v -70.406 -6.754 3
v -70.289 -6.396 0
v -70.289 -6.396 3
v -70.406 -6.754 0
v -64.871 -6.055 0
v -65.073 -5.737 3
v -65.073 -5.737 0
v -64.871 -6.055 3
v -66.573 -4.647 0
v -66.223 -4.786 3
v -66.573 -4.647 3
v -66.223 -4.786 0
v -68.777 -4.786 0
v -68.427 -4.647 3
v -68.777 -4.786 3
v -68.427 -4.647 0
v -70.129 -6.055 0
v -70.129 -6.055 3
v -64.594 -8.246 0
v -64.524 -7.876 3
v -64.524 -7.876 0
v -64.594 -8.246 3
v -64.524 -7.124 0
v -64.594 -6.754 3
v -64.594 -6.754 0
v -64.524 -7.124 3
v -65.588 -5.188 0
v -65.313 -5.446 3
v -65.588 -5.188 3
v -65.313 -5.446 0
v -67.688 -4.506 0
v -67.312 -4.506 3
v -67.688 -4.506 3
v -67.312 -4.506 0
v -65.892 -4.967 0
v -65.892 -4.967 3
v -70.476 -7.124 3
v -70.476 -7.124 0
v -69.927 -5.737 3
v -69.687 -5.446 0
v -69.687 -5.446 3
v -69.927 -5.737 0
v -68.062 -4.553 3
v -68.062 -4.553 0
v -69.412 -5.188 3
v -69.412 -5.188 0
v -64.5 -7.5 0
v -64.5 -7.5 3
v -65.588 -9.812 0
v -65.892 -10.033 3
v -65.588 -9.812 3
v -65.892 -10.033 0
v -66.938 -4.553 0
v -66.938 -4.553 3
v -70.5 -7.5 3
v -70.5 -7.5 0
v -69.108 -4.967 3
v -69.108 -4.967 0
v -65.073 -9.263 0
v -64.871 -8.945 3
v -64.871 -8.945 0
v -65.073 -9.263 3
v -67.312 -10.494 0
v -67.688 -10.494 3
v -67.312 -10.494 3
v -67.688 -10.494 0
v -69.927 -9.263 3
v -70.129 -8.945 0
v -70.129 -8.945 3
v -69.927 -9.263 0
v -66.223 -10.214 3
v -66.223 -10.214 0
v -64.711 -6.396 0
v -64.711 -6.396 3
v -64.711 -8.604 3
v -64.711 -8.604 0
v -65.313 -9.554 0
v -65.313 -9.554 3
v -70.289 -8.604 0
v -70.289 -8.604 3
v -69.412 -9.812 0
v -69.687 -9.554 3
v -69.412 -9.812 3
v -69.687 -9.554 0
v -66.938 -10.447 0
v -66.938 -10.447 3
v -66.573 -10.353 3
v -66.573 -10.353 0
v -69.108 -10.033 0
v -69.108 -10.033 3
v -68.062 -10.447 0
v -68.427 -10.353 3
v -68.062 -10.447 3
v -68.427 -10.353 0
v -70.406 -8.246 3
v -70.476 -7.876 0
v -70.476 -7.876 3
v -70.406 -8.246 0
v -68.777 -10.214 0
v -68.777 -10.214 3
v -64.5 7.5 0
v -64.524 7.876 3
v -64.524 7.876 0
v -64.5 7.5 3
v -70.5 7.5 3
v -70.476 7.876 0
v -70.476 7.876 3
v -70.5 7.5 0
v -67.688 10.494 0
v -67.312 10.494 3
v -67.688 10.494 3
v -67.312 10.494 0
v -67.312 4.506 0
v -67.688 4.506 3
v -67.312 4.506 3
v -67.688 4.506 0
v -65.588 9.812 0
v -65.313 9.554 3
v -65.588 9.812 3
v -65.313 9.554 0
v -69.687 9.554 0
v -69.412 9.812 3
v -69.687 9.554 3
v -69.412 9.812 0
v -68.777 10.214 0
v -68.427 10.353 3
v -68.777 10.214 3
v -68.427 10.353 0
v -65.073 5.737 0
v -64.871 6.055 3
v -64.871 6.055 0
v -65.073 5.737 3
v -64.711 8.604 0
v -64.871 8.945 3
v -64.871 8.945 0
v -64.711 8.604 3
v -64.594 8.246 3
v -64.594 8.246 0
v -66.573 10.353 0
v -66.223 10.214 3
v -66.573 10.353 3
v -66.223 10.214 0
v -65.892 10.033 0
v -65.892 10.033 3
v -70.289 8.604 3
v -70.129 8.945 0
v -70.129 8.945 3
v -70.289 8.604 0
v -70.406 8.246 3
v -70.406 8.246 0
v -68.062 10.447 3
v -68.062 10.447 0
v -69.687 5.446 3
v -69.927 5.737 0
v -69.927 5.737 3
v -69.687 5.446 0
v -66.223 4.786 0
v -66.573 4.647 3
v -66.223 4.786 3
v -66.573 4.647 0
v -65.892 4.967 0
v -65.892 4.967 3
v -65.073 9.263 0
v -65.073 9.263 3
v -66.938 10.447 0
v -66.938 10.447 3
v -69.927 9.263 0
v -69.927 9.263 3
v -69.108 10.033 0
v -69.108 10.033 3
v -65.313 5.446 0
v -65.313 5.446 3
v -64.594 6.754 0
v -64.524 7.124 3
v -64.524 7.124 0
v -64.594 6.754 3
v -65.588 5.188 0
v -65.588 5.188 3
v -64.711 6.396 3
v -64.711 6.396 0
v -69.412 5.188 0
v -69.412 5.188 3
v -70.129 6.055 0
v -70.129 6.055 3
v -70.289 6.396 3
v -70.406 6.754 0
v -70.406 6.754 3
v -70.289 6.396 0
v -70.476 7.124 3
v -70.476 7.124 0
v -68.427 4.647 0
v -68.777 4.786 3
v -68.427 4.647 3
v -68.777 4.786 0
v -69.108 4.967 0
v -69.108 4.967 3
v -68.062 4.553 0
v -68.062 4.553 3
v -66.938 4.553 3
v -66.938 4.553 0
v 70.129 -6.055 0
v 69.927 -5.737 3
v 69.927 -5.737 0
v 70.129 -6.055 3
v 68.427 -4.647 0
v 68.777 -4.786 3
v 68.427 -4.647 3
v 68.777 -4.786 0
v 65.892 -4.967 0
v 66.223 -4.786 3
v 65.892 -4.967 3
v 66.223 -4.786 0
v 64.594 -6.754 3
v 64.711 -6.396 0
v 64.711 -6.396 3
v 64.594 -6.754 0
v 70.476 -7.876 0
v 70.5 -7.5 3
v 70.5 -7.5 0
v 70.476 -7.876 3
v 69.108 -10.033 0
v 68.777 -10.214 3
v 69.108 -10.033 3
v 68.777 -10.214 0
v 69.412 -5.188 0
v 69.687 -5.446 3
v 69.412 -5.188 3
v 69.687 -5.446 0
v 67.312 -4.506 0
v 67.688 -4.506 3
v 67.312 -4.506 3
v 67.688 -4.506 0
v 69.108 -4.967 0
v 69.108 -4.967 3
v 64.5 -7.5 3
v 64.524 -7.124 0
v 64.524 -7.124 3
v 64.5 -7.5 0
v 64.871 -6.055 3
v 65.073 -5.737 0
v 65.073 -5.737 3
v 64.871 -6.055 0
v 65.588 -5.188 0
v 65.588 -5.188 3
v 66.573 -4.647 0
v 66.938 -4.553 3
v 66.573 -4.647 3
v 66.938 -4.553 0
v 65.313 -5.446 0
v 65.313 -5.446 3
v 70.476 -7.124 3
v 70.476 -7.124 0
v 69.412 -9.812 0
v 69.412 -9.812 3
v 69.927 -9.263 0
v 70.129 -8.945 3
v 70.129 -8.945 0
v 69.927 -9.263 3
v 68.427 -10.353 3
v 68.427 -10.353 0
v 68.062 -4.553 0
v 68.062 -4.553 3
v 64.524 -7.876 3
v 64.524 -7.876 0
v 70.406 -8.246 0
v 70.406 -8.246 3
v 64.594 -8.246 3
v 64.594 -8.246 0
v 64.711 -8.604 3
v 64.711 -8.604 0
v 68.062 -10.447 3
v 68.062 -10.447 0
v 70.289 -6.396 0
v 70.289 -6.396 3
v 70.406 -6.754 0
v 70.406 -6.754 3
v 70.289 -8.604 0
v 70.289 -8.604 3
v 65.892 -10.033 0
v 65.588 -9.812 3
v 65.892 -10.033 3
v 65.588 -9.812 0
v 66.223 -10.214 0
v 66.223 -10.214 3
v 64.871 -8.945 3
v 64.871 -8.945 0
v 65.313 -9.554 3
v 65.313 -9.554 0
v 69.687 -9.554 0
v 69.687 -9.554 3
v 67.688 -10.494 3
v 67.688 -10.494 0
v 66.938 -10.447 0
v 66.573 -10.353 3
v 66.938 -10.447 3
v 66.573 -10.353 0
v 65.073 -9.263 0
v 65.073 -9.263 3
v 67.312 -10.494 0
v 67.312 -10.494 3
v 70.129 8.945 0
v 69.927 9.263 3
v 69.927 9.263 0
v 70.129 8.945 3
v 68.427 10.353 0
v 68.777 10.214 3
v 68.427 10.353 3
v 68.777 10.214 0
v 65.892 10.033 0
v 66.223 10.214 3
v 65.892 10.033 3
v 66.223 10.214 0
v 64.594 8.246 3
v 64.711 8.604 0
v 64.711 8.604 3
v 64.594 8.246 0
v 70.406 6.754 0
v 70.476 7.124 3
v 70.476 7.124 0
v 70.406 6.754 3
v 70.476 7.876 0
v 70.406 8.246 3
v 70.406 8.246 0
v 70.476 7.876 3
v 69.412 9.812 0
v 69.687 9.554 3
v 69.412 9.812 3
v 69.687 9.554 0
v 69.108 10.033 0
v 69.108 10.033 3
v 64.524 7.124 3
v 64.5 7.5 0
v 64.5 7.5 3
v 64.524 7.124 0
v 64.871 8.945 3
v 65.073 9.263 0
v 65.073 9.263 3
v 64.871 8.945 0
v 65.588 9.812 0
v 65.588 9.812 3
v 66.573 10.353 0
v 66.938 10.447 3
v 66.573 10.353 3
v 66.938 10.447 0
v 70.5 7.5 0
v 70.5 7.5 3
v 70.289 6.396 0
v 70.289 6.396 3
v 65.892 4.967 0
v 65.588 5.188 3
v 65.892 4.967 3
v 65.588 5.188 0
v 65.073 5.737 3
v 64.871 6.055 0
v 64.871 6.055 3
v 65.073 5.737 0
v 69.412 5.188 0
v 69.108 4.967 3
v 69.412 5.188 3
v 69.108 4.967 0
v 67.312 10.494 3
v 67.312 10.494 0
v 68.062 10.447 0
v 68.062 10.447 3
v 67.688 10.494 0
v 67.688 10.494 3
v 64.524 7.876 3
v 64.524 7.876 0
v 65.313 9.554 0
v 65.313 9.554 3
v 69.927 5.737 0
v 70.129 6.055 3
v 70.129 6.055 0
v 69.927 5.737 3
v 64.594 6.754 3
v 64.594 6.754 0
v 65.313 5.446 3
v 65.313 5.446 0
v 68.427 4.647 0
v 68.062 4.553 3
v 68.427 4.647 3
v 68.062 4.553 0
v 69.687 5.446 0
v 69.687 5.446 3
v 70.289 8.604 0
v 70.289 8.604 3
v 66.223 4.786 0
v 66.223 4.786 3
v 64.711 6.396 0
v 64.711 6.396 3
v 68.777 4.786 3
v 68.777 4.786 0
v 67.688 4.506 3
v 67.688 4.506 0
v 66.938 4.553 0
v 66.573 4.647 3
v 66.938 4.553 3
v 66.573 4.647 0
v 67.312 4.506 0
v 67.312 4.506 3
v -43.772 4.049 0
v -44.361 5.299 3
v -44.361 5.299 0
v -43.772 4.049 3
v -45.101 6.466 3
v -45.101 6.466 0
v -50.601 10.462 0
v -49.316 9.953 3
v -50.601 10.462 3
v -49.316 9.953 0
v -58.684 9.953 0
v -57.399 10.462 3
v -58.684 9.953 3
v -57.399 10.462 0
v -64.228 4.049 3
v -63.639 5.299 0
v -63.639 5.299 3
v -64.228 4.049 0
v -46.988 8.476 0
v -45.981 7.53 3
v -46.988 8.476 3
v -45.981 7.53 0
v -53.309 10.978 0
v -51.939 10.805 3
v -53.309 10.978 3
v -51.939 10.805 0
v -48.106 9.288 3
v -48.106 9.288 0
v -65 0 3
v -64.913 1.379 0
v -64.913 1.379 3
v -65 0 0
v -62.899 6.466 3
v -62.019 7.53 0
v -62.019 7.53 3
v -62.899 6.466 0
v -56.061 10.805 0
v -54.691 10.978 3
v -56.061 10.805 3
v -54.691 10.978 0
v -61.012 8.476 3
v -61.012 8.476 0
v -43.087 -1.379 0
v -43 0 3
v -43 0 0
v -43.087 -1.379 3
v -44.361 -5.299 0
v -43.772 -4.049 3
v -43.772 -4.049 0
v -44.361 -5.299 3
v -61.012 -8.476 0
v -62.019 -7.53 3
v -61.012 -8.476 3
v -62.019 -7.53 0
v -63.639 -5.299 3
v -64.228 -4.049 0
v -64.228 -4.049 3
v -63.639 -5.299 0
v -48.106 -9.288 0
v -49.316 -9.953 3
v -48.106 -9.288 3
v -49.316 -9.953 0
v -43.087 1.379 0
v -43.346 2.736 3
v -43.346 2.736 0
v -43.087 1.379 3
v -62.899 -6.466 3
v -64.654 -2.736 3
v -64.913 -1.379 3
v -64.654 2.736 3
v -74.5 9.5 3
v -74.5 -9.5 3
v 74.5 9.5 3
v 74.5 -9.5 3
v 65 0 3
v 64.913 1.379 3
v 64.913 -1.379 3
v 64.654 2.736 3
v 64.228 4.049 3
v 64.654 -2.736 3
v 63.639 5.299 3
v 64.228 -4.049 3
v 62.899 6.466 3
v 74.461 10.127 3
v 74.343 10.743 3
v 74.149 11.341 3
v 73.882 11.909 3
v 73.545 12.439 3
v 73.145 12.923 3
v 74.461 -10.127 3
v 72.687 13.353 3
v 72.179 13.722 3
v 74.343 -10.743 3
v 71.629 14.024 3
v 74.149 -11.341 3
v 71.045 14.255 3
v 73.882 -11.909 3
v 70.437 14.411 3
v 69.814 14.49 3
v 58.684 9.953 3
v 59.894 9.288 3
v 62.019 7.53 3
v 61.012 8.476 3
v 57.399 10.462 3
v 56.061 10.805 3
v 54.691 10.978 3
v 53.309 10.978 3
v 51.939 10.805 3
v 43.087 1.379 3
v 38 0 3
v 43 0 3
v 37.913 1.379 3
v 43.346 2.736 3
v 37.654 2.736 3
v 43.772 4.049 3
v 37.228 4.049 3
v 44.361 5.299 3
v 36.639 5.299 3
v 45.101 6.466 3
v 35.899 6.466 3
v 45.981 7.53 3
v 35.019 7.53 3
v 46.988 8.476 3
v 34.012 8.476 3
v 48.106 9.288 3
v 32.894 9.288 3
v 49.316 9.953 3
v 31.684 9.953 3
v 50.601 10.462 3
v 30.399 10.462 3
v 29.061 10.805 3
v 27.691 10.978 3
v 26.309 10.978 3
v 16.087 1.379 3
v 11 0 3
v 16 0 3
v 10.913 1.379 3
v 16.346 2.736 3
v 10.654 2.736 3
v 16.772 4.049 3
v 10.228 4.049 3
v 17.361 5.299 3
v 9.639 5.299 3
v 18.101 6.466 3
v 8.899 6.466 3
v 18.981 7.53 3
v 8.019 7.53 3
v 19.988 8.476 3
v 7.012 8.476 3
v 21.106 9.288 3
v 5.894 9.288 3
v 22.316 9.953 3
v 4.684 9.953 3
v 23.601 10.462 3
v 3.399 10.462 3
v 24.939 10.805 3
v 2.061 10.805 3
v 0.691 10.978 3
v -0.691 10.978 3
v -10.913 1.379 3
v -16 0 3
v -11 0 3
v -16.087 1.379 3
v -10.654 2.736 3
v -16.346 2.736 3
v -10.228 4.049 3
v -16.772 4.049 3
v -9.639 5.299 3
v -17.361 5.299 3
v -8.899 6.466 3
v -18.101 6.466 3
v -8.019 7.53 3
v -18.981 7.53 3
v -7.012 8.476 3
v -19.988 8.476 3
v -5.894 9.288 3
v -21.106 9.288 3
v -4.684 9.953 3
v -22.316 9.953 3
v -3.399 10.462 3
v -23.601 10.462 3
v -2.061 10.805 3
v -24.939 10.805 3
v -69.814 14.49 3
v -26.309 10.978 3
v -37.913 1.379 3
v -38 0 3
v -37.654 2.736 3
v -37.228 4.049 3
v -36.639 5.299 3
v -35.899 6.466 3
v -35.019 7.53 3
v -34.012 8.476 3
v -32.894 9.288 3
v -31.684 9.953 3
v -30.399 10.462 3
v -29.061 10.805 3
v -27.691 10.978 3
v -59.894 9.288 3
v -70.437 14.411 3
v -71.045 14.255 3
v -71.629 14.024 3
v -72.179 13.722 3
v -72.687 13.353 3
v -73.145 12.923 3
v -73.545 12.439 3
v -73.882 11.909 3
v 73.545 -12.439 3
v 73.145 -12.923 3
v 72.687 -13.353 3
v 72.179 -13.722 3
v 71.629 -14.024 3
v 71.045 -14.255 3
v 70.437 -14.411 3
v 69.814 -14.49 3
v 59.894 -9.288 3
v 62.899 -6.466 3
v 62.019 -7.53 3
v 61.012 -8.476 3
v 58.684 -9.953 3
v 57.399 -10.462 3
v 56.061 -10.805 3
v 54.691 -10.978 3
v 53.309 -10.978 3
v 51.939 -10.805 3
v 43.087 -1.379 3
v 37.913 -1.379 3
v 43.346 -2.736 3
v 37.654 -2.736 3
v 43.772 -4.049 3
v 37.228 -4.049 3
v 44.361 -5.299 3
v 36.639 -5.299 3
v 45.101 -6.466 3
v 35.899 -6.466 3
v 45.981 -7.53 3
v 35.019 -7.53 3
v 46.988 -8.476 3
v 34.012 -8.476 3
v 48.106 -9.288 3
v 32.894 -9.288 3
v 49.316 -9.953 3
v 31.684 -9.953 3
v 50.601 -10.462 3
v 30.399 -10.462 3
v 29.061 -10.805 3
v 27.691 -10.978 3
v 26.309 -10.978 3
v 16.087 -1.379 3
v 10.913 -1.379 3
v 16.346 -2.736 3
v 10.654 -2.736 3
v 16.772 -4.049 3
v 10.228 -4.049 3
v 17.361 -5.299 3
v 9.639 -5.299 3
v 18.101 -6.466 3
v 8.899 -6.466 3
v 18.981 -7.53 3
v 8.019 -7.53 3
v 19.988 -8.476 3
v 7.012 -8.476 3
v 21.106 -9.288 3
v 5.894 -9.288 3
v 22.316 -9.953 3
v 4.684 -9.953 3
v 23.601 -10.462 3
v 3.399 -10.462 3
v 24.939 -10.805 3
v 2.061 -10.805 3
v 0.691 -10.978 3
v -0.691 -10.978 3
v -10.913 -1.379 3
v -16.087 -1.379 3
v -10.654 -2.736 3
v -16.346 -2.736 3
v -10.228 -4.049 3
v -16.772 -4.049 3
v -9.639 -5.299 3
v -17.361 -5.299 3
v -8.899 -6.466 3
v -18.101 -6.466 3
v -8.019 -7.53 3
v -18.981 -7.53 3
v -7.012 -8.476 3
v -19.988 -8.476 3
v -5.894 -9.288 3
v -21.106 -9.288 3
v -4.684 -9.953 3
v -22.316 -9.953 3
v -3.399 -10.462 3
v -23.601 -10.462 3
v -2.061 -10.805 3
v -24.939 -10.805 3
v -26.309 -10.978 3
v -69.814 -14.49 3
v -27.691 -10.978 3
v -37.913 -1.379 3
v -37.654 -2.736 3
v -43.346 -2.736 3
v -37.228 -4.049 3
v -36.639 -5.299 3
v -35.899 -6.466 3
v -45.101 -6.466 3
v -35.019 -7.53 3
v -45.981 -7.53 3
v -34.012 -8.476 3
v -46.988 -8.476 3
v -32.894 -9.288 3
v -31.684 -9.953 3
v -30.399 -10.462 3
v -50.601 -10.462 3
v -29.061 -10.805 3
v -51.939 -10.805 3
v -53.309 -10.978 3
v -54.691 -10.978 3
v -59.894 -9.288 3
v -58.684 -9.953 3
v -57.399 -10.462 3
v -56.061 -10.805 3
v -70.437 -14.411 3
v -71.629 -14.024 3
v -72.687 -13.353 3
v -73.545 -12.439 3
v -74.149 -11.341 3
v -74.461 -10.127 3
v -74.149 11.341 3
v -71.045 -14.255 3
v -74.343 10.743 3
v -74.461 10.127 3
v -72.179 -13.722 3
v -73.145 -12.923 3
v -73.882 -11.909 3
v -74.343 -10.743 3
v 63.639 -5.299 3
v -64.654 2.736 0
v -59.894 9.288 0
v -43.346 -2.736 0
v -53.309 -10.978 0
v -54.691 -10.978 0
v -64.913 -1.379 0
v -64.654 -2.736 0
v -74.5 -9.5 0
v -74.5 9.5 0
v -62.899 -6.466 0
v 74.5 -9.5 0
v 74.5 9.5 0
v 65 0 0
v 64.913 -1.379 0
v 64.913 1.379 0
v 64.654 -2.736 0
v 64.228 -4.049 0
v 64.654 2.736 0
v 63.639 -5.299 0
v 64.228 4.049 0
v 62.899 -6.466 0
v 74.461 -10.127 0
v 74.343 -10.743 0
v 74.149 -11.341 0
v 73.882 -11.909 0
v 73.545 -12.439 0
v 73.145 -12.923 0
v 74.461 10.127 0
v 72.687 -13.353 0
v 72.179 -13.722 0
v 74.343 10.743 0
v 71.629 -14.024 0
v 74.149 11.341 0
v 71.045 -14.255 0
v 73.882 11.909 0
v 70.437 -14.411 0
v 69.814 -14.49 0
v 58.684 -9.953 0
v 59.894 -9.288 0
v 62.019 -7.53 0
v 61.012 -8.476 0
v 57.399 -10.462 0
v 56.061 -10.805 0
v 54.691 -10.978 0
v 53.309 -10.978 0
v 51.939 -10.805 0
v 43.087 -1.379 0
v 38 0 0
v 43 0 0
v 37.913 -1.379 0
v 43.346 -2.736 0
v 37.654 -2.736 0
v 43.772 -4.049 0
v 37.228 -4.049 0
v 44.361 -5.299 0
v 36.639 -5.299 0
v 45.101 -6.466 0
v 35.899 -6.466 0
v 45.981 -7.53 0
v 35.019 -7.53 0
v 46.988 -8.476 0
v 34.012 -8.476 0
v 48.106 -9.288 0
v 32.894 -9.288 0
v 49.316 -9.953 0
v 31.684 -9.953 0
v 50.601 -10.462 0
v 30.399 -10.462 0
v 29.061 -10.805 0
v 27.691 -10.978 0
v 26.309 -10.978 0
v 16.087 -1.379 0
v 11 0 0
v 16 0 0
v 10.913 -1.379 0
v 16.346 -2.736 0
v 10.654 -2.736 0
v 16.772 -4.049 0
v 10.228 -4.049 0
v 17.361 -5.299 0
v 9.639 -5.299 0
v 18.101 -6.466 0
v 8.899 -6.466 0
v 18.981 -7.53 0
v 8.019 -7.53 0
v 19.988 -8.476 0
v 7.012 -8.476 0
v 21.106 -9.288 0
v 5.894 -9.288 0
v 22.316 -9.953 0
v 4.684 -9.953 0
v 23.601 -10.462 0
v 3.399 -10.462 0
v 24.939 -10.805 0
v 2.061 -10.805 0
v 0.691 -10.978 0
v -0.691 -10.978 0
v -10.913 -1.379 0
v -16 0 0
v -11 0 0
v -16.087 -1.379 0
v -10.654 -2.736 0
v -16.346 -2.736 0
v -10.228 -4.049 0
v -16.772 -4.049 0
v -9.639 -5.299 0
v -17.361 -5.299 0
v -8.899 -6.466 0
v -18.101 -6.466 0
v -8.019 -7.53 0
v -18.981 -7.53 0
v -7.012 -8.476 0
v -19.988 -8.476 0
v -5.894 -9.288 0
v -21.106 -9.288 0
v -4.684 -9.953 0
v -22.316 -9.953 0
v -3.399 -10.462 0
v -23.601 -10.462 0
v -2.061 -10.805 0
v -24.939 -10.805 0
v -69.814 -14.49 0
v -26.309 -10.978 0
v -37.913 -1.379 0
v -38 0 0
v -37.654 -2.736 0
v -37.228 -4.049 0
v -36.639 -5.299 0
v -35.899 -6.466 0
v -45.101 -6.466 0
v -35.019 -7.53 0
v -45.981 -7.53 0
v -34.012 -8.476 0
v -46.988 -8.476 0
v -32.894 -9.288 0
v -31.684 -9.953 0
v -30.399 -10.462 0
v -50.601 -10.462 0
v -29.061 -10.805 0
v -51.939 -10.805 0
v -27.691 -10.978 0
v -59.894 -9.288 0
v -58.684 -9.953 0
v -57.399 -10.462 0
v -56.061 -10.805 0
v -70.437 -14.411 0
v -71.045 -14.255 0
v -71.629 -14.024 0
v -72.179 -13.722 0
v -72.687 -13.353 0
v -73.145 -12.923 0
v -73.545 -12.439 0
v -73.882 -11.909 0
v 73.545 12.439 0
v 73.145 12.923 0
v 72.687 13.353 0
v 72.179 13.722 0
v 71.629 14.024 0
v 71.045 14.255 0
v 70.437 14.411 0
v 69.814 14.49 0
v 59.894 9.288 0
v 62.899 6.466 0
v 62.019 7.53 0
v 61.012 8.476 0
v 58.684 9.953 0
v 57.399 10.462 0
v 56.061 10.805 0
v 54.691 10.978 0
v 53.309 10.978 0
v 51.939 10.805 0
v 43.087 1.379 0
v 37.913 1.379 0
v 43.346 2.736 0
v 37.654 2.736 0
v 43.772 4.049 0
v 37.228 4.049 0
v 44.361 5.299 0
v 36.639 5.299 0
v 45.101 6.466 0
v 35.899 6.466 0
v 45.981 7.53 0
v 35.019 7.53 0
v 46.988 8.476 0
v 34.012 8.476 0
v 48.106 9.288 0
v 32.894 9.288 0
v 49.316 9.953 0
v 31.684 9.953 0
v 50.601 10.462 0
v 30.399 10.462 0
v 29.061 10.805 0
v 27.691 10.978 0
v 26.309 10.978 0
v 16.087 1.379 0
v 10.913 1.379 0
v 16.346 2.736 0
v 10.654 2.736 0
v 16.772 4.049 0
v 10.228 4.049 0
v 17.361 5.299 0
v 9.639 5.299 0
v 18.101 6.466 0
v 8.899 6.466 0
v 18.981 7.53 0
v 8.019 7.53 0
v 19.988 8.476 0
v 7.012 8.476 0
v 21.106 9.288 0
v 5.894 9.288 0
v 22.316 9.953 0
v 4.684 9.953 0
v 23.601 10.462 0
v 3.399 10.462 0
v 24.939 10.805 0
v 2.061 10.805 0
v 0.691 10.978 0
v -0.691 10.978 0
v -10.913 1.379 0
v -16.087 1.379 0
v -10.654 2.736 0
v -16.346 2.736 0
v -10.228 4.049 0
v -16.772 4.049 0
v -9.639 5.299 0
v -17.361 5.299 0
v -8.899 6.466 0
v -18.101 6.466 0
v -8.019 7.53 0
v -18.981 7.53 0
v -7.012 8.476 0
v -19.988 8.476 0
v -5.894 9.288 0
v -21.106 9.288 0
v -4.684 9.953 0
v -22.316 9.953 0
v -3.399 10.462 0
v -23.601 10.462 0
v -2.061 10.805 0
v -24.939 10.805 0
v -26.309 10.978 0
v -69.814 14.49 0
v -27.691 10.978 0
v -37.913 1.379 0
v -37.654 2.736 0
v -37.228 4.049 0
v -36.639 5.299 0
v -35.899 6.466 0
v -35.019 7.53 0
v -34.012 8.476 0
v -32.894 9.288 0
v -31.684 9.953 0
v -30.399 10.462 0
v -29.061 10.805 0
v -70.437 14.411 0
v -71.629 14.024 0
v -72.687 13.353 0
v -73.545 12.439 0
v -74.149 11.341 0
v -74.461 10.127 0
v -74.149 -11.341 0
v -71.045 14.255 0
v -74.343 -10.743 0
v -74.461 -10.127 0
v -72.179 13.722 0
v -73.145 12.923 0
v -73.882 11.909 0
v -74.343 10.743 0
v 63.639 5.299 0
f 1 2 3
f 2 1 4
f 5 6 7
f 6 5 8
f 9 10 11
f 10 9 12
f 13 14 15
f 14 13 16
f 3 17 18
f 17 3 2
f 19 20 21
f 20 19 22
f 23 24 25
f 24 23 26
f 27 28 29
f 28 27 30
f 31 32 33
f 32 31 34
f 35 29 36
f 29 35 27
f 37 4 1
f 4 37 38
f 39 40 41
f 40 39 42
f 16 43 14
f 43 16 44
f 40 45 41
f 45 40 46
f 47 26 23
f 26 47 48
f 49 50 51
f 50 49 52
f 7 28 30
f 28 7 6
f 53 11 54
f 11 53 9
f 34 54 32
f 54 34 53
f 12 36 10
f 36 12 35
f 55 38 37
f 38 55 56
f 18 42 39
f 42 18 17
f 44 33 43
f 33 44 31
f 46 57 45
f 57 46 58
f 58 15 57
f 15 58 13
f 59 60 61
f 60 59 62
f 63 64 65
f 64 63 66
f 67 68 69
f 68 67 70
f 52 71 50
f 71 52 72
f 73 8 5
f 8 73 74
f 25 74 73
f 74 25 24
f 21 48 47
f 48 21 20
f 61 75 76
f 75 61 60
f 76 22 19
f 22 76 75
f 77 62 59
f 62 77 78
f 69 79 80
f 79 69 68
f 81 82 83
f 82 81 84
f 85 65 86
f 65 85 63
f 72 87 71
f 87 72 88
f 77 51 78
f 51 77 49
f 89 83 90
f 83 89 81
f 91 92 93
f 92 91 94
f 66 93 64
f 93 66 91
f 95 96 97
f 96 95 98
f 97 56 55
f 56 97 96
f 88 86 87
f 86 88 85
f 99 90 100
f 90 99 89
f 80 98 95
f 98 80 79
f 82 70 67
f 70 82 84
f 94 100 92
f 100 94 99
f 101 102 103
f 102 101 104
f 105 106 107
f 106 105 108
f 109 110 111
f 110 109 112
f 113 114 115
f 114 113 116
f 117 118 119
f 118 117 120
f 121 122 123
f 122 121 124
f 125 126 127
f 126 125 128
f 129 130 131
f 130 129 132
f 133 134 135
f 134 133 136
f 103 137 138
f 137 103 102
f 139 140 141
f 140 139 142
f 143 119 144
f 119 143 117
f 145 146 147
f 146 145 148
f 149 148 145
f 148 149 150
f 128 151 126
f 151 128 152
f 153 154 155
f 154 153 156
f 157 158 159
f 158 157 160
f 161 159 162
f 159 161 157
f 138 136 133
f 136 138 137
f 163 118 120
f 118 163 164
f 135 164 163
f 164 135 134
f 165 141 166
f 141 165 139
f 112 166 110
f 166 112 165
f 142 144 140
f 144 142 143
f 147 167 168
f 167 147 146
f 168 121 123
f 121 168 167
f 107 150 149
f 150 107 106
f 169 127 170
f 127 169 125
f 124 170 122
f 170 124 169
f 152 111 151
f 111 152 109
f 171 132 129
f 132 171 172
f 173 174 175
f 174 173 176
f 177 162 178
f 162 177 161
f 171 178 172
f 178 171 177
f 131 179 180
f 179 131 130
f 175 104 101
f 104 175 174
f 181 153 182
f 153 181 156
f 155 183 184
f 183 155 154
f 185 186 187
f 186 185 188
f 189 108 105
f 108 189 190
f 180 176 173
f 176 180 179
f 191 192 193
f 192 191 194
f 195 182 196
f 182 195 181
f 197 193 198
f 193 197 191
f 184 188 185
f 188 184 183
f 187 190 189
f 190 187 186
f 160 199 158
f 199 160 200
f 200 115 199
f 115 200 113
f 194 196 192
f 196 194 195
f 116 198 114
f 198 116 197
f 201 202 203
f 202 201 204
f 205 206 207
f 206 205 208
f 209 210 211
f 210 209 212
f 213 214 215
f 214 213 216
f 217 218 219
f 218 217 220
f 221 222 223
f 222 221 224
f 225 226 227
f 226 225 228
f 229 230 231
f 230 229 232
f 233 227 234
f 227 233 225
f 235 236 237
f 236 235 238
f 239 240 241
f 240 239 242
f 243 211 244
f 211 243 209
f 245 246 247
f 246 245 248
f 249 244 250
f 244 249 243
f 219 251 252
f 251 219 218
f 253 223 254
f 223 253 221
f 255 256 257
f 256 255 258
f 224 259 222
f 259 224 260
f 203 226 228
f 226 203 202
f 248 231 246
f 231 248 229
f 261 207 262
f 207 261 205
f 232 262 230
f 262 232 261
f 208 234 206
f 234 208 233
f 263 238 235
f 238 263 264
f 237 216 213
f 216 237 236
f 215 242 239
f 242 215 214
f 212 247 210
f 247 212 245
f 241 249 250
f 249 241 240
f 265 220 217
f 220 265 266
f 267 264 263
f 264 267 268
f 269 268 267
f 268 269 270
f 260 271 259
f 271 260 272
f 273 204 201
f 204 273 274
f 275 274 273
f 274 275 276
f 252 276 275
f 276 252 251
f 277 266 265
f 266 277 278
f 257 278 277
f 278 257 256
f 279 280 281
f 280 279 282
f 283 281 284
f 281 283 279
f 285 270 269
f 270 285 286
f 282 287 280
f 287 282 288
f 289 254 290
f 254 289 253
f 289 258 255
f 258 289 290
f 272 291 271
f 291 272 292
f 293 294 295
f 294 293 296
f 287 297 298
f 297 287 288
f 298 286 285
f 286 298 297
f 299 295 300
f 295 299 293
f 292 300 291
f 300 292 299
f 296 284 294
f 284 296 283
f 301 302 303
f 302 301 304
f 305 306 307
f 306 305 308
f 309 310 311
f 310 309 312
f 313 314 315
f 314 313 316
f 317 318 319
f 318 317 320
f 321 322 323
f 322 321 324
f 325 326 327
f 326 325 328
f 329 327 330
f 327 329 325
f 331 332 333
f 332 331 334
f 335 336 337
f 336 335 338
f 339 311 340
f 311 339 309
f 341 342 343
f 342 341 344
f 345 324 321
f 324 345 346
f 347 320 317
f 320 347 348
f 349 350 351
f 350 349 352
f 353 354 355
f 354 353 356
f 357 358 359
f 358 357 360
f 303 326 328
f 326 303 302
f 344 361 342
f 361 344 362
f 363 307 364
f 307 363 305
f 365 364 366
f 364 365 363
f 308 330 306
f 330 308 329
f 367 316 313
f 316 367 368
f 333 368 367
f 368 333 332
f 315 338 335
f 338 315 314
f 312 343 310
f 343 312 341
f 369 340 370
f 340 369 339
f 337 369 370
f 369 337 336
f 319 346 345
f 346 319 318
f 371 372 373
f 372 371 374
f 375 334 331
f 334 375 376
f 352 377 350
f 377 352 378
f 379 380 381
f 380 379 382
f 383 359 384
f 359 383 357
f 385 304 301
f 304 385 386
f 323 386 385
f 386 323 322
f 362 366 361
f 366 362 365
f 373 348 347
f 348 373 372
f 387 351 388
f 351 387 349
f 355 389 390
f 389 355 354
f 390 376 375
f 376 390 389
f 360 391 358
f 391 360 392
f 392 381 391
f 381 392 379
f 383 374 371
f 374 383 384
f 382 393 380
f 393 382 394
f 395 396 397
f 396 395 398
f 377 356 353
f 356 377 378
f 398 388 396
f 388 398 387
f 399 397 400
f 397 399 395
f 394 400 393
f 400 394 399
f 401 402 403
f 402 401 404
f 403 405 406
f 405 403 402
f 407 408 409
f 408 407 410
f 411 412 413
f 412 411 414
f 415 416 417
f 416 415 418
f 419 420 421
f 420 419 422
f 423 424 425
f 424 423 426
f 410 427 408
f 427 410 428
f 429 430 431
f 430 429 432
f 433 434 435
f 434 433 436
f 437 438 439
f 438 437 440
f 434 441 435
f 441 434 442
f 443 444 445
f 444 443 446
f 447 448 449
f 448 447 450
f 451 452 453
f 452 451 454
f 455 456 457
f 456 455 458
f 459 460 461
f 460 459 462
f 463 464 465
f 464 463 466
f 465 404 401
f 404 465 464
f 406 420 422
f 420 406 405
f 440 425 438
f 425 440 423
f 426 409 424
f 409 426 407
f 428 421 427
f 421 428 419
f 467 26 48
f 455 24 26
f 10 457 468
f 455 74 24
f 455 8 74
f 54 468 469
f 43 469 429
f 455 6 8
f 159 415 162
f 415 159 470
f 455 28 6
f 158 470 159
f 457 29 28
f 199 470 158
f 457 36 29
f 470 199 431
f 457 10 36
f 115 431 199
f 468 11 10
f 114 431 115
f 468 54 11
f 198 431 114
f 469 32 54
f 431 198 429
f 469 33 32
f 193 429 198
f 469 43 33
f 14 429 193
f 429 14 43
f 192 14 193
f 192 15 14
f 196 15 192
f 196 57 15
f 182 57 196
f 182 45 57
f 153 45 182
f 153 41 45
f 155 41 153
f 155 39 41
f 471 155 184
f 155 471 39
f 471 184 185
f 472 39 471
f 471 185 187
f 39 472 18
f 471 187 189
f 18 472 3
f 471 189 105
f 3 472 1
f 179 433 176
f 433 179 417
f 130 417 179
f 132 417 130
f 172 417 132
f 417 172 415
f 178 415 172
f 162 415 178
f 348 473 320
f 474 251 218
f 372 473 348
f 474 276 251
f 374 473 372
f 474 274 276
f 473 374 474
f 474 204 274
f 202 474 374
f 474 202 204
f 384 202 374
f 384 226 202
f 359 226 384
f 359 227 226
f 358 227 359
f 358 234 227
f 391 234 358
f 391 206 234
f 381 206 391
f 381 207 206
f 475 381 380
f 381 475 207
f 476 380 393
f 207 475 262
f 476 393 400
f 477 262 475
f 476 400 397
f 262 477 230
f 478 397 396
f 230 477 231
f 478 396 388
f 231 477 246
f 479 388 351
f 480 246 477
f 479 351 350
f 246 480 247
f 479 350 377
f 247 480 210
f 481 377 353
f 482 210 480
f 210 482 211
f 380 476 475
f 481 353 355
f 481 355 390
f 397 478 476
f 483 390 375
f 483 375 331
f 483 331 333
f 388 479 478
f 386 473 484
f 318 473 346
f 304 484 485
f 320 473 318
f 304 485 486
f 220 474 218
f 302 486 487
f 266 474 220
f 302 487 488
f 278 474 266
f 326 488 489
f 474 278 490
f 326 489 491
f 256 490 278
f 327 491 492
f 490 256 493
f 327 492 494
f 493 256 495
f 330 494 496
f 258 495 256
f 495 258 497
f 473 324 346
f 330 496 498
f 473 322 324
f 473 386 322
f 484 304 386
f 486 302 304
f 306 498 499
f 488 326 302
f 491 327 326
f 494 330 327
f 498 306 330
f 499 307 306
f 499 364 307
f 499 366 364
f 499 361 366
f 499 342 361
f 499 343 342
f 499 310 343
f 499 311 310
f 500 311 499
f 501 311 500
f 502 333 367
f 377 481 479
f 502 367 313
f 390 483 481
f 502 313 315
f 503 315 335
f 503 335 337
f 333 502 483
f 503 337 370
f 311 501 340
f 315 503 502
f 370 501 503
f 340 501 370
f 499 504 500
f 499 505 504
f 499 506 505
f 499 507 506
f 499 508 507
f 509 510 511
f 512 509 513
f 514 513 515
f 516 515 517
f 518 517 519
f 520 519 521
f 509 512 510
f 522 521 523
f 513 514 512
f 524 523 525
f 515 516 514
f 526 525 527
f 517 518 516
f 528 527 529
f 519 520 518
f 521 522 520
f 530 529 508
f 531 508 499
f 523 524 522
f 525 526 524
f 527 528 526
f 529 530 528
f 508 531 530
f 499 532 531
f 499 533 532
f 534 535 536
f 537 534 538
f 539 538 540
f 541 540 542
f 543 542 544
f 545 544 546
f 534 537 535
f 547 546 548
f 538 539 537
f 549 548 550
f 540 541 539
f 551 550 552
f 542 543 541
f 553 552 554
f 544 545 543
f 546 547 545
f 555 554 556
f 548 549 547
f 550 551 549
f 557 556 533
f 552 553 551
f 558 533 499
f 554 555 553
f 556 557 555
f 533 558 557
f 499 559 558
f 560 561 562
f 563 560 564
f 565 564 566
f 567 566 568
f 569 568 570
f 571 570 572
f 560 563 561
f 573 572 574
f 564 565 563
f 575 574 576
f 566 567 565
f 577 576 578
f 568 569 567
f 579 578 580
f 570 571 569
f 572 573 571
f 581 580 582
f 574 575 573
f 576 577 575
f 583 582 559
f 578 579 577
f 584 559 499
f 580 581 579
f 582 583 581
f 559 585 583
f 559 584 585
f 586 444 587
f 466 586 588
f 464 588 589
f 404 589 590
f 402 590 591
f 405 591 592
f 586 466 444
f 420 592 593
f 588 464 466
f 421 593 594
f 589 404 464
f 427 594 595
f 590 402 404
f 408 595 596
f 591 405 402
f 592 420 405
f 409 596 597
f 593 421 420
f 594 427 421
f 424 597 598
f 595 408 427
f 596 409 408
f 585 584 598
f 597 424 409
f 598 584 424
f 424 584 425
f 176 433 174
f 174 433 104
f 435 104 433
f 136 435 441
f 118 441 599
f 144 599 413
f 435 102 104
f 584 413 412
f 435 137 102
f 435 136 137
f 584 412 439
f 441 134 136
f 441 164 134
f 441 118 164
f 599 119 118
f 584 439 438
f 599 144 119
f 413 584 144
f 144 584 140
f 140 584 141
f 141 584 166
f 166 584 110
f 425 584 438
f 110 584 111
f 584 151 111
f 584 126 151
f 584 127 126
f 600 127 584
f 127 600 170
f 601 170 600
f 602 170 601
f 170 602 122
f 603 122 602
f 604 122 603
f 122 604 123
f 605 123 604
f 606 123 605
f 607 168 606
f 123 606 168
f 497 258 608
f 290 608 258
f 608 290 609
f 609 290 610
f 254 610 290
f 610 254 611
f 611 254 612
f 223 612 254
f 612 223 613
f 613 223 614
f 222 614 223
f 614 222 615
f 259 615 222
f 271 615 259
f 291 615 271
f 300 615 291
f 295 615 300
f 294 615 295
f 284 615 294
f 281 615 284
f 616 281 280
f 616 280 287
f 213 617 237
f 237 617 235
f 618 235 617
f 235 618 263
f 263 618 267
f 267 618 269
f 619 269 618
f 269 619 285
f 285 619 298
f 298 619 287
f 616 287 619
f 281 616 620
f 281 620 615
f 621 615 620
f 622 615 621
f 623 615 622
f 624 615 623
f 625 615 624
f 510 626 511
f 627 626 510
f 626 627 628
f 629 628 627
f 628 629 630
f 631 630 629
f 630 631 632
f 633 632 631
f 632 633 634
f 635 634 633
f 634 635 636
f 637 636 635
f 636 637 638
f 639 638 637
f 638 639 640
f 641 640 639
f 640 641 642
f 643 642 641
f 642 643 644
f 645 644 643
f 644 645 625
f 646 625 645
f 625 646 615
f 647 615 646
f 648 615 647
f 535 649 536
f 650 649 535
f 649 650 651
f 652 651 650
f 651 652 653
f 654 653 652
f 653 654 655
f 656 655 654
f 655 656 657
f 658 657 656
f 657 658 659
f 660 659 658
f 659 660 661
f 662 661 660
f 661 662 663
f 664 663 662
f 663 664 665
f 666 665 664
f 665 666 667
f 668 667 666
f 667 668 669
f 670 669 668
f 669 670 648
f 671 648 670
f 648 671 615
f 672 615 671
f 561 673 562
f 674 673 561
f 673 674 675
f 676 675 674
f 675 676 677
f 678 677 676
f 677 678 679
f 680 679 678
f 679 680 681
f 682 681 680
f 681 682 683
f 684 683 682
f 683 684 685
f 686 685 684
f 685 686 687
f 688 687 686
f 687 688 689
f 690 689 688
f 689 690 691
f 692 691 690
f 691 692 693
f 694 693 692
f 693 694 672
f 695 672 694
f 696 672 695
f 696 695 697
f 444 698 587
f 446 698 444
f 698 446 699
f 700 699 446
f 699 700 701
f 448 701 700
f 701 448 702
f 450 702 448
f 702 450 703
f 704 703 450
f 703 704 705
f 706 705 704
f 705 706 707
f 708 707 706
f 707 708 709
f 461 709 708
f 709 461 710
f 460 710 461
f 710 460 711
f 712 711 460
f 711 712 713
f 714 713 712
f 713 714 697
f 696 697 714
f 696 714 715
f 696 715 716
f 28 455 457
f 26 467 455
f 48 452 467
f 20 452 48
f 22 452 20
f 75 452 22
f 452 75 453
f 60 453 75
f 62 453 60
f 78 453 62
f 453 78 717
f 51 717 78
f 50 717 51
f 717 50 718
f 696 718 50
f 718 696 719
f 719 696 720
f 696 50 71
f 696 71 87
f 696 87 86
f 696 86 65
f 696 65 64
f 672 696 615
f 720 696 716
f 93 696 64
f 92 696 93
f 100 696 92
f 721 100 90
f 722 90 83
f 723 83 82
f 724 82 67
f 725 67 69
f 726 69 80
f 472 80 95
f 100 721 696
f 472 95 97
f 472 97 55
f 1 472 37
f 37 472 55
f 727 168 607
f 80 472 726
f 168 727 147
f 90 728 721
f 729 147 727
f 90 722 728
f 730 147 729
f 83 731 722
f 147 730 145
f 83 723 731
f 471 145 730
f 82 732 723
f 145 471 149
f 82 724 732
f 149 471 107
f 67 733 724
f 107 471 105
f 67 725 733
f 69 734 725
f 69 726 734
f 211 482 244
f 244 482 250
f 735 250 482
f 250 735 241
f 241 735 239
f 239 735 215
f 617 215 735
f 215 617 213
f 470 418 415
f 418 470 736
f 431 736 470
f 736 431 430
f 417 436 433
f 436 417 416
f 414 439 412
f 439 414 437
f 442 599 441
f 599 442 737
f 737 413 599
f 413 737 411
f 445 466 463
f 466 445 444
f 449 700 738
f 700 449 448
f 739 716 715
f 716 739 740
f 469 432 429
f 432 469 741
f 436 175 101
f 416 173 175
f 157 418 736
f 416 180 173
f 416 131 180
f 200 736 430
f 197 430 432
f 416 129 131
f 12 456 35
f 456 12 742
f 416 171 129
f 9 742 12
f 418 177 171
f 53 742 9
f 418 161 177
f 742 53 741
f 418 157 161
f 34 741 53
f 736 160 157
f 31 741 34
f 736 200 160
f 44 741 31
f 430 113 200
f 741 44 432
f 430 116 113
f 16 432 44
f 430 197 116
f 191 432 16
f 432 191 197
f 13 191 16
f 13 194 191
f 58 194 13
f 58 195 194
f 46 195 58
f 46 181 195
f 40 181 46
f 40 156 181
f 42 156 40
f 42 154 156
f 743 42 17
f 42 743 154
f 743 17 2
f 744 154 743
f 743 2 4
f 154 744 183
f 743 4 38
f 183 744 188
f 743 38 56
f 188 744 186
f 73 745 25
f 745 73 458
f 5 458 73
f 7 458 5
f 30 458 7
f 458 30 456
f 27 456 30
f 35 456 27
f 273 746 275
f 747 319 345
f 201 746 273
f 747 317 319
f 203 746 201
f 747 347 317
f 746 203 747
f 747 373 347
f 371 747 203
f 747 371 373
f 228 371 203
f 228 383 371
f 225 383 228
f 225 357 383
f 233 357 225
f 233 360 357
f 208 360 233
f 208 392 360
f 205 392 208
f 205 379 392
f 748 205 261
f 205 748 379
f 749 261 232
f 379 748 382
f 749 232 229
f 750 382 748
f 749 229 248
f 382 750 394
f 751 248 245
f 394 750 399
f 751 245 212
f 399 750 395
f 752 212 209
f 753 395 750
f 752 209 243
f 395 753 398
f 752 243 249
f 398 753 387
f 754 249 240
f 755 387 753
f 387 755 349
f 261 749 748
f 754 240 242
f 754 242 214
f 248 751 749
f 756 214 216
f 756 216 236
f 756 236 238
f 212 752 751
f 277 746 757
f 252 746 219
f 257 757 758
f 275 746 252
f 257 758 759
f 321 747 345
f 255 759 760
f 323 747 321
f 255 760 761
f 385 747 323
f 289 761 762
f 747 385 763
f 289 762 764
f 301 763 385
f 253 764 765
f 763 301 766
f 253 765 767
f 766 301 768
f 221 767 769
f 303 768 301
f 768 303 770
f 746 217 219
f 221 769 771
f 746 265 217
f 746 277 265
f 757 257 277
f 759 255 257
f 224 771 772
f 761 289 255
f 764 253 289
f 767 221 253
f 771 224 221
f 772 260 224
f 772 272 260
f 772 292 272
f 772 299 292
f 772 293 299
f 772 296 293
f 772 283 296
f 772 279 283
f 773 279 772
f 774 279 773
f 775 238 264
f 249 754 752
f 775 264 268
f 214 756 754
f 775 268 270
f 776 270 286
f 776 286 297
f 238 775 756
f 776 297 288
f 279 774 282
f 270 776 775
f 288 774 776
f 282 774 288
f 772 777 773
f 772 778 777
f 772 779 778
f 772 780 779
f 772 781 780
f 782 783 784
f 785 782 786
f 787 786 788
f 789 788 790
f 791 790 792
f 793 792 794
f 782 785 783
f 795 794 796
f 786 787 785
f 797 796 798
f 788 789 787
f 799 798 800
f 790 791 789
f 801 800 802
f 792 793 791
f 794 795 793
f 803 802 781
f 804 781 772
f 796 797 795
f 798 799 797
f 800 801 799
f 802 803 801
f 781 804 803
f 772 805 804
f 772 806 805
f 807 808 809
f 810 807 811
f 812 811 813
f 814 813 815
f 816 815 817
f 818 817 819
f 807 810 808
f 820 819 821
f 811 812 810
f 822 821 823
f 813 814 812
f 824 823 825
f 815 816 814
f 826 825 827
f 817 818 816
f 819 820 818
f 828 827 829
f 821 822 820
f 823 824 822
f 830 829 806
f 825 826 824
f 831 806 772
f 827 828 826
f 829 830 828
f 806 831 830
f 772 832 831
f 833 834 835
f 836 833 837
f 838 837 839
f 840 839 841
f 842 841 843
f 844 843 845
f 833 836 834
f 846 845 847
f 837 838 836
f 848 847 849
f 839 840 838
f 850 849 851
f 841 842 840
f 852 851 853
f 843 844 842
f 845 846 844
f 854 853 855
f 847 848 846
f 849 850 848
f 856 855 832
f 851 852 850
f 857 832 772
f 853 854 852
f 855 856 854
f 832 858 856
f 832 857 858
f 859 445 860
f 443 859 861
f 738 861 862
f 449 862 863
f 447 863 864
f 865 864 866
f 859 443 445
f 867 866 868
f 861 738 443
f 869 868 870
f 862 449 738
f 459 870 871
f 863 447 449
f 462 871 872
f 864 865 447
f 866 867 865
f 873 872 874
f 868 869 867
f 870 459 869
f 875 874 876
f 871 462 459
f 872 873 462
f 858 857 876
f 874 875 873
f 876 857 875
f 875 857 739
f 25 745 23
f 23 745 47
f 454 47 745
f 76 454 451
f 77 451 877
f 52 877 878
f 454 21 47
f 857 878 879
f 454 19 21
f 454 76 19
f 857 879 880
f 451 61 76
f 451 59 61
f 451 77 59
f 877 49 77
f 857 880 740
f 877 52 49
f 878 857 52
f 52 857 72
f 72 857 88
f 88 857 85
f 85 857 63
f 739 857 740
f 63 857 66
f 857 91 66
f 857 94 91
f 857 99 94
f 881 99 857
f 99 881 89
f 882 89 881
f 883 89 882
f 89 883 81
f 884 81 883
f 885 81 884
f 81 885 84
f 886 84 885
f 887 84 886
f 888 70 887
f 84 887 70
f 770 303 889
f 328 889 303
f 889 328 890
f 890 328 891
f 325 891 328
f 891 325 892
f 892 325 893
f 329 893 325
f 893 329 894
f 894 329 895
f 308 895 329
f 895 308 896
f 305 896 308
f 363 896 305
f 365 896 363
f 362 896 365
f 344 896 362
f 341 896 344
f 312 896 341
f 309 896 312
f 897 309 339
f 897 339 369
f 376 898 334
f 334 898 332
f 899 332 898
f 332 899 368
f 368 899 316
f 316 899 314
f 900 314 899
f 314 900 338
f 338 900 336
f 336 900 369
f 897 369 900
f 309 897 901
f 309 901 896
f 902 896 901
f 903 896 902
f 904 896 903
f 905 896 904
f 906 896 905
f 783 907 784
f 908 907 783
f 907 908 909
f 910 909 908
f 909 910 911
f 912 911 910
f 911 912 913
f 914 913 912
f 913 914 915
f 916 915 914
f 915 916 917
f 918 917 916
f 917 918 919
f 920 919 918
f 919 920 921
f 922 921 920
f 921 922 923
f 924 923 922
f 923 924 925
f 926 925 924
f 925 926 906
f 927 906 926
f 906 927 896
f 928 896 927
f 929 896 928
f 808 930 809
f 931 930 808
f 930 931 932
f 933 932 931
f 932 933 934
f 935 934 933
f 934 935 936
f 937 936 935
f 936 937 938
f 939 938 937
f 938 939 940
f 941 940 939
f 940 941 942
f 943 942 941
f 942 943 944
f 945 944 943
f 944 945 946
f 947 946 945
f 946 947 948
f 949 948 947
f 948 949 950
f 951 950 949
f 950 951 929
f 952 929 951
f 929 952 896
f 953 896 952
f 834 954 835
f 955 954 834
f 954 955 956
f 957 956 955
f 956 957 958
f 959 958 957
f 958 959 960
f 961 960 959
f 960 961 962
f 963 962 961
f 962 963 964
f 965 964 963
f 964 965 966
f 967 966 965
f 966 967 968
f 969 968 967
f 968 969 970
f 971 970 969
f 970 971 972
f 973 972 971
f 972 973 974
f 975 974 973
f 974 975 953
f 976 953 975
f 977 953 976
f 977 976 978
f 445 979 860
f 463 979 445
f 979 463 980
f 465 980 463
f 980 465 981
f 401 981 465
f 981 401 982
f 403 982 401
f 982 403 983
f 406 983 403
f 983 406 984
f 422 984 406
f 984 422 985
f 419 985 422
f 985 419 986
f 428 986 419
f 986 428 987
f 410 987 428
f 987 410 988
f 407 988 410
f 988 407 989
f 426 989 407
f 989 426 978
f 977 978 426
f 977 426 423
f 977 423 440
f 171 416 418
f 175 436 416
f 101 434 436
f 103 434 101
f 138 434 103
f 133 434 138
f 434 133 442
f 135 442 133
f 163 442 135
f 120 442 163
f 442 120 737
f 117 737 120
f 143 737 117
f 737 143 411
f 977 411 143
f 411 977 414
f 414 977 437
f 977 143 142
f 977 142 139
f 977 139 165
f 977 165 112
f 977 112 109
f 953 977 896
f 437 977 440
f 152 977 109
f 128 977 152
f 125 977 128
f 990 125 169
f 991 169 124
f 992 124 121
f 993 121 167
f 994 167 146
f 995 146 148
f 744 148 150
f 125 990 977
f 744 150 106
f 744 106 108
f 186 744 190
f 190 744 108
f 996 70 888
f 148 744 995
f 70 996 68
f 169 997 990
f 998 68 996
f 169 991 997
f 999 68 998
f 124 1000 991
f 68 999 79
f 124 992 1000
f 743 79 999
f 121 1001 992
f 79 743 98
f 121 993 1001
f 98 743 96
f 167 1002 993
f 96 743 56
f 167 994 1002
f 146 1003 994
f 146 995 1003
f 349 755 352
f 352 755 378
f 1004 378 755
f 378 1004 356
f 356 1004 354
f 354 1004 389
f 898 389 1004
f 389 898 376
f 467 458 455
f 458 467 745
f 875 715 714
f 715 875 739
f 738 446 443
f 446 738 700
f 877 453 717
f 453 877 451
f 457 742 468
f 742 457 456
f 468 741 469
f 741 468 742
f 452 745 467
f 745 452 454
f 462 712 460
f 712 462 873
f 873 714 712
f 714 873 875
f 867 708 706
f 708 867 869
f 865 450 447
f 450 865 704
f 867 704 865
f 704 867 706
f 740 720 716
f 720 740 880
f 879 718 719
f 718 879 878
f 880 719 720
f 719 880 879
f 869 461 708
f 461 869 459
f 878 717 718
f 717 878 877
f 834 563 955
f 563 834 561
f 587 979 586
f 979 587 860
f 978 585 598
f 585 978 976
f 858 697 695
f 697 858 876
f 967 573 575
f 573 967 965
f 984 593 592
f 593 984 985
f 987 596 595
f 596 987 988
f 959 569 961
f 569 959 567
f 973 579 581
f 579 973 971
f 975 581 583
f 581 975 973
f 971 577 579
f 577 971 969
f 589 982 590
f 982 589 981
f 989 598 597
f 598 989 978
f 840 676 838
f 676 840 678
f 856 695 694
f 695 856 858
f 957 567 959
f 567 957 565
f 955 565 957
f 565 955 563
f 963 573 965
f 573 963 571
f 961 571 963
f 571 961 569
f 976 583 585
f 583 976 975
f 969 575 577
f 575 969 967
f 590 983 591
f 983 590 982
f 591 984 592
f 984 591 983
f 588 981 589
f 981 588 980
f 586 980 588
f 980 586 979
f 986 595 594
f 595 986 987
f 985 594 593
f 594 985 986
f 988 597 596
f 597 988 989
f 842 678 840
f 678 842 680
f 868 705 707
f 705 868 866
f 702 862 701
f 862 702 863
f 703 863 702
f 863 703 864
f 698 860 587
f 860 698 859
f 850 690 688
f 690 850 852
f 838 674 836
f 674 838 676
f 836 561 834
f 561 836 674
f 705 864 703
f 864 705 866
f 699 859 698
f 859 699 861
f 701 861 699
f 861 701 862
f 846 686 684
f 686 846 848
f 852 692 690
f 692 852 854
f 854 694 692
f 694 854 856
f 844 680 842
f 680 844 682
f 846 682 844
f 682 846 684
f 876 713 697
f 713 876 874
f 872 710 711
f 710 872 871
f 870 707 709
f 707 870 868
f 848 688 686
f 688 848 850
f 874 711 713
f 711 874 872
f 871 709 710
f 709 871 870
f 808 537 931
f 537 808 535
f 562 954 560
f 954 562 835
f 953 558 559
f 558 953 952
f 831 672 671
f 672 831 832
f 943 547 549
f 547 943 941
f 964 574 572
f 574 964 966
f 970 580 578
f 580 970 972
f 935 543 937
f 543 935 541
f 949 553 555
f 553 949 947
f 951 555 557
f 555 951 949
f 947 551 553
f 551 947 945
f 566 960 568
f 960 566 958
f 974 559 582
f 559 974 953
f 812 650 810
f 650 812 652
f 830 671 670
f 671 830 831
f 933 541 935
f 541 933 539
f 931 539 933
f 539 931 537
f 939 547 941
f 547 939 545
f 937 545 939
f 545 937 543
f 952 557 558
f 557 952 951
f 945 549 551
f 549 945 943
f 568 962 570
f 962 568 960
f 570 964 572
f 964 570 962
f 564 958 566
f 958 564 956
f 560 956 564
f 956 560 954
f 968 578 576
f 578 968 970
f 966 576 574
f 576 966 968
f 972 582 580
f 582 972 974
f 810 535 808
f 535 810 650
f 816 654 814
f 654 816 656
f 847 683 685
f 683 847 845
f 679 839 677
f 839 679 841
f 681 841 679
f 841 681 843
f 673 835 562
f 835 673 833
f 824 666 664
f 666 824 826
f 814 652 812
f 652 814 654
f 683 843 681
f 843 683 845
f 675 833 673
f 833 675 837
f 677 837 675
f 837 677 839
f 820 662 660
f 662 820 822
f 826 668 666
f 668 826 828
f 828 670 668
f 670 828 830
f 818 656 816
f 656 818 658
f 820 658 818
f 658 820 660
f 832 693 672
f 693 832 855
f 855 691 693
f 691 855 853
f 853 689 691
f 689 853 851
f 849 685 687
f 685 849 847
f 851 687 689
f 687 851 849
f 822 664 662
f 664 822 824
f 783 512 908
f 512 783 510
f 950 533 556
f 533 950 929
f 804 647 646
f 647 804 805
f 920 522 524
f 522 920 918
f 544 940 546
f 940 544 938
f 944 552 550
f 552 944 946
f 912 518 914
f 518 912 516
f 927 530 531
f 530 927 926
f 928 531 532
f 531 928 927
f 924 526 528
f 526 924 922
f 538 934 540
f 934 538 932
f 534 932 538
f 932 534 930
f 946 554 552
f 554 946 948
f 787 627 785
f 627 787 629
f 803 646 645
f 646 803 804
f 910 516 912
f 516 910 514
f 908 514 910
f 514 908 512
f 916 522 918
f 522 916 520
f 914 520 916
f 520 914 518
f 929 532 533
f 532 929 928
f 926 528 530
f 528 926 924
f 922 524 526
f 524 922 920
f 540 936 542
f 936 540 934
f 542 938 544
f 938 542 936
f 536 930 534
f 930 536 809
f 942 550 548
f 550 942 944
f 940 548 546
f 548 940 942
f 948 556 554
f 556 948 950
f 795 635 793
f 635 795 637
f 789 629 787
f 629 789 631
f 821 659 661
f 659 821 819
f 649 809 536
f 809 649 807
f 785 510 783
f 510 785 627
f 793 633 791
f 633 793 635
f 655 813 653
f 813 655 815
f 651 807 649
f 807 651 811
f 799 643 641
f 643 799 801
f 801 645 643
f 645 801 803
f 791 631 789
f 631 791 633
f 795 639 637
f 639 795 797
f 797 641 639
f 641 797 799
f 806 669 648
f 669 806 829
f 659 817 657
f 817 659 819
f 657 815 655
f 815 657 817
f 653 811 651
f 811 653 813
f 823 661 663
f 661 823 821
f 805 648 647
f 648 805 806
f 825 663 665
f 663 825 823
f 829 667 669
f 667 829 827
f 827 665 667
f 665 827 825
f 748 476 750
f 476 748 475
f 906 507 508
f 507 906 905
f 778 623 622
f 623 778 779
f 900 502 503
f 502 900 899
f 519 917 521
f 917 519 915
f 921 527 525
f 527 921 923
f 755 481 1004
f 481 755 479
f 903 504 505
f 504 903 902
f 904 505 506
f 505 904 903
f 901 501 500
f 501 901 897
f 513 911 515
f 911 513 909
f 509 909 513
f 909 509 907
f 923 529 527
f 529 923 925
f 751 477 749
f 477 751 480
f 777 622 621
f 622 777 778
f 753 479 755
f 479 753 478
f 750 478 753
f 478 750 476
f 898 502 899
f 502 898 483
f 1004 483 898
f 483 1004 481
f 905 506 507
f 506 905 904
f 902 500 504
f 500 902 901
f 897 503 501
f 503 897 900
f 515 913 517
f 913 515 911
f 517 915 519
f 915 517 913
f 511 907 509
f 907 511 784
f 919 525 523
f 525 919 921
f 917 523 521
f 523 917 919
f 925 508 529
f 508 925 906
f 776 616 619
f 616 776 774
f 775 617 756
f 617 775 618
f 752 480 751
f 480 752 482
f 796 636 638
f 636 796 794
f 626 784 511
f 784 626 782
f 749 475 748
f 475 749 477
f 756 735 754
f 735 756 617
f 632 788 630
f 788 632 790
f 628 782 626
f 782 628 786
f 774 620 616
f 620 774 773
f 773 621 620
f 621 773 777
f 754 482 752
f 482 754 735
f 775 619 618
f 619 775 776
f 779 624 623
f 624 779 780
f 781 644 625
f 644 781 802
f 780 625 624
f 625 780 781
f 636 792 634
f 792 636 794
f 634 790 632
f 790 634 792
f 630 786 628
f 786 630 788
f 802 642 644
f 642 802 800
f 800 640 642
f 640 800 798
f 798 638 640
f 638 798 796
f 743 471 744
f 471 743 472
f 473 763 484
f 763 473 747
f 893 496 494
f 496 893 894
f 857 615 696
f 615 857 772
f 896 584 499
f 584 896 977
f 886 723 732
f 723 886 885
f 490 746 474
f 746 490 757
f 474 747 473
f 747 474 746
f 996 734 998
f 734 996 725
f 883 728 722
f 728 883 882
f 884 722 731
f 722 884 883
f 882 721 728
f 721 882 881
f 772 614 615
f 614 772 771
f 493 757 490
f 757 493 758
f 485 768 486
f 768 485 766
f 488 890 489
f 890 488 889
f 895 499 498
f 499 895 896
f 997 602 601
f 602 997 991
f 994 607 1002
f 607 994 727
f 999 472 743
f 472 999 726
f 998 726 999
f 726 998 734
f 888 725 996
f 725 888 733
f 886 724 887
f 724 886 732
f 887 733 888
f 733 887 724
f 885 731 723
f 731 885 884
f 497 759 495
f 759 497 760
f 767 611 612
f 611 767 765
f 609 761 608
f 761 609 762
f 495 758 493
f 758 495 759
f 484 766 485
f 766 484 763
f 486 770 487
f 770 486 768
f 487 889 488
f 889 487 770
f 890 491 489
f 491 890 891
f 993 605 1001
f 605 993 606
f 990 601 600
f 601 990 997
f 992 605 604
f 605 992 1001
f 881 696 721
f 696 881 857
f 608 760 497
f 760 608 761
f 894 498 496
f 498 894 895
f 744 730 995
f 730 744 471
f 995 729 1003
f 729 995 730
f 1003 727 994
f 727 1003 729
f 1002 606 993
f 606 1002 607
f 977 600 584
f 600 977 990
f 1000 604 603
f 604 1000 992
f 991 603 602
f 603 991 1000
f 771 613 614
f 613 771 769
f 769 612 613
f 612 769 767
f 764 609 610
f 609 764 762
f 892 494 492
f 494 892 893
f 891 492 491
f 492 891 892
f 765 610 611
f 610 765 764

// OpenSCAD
$fn = 50;


difference() {
	union() {
		hull() {
			translate(v = [-69.5000000000, 9.5000000000, 0]) {
				cylinder(h = 3, r = 5);
			}
			translate(v = [69.5000000000, 9.5000000000, 0]) {
				cylinder(h = 3, r = 5);
			}
			translate(v = [-69.5000000000, -9.5000000000, 0]) {
				cylinder(h = 3, r = 5);
			}
			translate(v = [69.5000000000, -9.5000000000, 0]) {
				cylinder(h = 3, r = 5);
			}
		}
	}
	union() {
		#translate(v = [-67.5000000000, -7.5000000000, -100.0000000000]) {
			cylinder(h = 200, r = 3.0000000000);
		}
		#translate(v = [-67.5000000000, 7.5000000000, -100.0000000000]) {
			cylinder(h = 200, r = 3.0000000000);
		}
		#translate(v = [67.5000000000, -7.5000000000, -100.0000000000]) {
			cylinder(h = 200, r = 3.0000000000);
		}
		#translate(v = [67.5000000000, 7.5000000000, -100.0000000000]) {
			cylinder(h = 200, r = 3.0000000000);
		}
		#translate(v = [-54.0000000000, 0, 0]) {
			cylinder(h = 3, r = 11.0000000000);
		}
		#translate(v = [-27.0000000000, 0, 0]) {
			cylinder(h = 3, r = 11.0000000000);
		}
		#cylinder(h = 3, r = 11.0000000000);
		#translate(v = [27.0000000000, 0, 0]) {
			cylinder(h = 3, r = 11.0000000000);
		}
		#translate(v = [54.0000000000, 0, 0]) {
			cylinder(h = 3, r = 11.0000000000);
		}
	}
}
